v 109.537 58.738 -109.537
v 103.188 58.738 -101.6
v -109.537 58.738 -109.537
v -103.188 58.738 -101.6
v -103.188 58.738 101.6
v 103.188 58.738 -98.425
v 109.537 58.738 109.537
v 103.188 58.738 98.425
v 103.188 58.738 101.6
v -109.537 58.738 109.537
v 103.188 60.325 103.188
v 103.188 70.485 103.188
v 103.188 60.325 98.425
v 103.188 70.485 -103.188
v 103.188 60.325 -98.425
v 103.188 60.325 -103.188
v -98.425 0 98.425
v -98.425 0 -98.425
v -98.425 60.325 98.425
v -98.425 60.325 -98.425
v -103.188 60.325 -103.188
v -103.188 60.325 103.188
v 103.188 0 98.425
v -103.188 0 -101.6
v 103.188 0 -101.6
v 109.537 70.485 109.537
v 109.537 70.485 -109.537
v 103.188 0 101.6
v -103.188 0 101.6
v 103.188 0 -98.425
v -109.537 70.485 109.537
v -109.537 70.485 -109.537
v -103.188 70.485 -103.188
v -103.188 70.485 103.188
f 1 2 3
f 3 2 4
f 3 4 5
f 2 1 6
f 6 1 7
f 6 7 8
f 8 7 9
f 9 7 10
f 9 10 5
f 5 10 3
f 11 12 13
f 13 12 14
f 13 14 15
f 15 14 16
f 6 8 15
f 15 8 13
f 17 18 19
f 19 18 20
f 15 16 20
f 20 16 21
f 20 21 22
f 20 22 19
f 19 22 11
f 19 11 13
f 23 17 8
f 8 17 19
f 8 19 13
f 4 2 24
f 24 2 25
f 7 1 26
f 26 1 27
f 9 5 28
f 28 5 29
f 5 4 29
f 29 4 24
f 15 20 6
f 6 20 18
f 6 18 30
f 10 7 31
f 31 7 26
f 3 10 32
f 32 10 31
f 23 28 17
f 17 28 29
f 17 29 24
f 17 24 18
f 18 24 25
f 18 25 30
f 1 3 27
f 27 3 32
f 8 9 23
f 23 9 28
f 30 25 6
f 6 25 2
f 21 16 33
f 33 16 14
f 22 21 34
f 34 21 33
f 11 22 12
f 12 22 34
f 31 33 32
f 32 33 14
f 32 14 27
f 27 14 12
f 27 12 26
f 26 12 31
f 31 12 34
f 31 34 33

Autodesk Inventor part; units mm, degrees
ref_plane "YZ Plane" through (0, 0, 0) normal (1, 0, 0) x (0, 1, 0)
ref_plane "XZ Plane" through (0, 0, 0) normal (0, 1, 0) x (-1, 0, 0)
sketch "Sketch1" plane through (0, 0, 0) normal (0, 1, 0) x (-1, 0, 0)
  line L0 (-103.1875, 101.6) -> (103.1875, 101.6)
  line L1 (103.1875, 101.6) -> (103.1875, -101.6)
  line L2 (103.1875, -101.6) -> (-103.1875, -101.6)
  line L3 (-103.1875, -101.6) -> (-103.1875, 101.6)
  line L4 (-103.1875, 101.6) -> (103.1875, -101.6) construction
  line L5 (103.1875, 101.6) -> (-103.1875, -101.6) construction
  line L6 (-98.425, 98.425) -> (98.425, 98.425)
  line L7 (98.425, 98.425) -> (98.425, -98.425)
  line L8 (98.425, -98.425) -> (-98.425, -98.425)
  line L9 (-98.425, -98.425) -> (-98.425, 98.425)
  line L10 (-98.425, 98.425) -> (98.425, -98.425) construction
  line L11 (98.425, 98.425) -> (-98.425, -98.425) construction
  point P0 (0, 0)
  dimension "d0" = 203.2
  dimension "d1" = 206.375
  dimension "d2" = 196.85
extrude "Extrusion1" add sketch "Sketch1" along normal blind 60.325
ref_plane "Work Plane1" through (0, 58.7375, 0) normal (0, 1, 0) x (1, 0, 0)
sketch "Sketch2" plane through (0, 58.7375, 0) normal (0, 1, 0) x (1, 0, 0)
  line L0 (109.5375, -109.5375) -> (-109.5375, -109.5375)
  line L1 (-109.5375, -109.5375) -> (-109.5375, 109.5375)
  line L2 (-109.5375, 109.5375) -> (109.5375, 109.5375)
  line L3 (109.5375, 109.5375) -> (109.5375, -109.5375)
  line L4 (109.5375, -109.5375) -> (-109.5375, 109.5375) construction
  line L5 (-109.5375, -109.5375) -> (109.5375, 109.5375) construction
  line L6 (103.1875, 101.6) -> (-103.1875, 101.6) projected
  line L7 (-103.1875, 101.6) -> (-103.1875, -101.6) projected
  line L8 (-103.1875, -101.6) -> (103.1875, -101.6) projected
  line L9 (103.1875, -101.6) -> (103.1875, 101.6) projected
  line L10 (98.425, -98.425) -> (-98.425, -98.425) projected
  line L11 (-98.425, -98.425) -> (-98.425, 98.425) projected
  line L12 (-98.425, 98.425) -> (98.425, 98.425) projected
  line L13 (98.425, 98.425) -> (98.425, -98.425) projected
  point P0 (0, 0)
  dimension "d7" = 219.075
extrude "Extrusion2" add sketch "Sketch2" along normal up to surface (1.5875 mm away) contours L0 L1 L2 L3
sketch "Sketch3" plane through (0, 60.325, 0) normal (0, 1, 0) x (1, 0, 0)
  line L0 (109.5375, 109.5375) -> (109.5375, -109.5375) projected
  line L1 (-109.5375, 109.5375) -> (109.5375, 109.5375) projected
  line L2 (-109.5375, -109.5375) -> (-109.5375, 109.5375) projected
  line L3 (109.5375, -109.5375) -> (-109.5375, -109.5375) projected
  line L4 (98.425, -98.425) -> (-98.425, -98.425) projected
  line L5 (-98.425, -98.425) -> (-98.425, 98.425) projected
  line L6 (-98.425, 98.425) -> (98.425, 98.425) projected
  line L7 (98.425, 98.425) -> (98.425, -98.425) projected
  line L8 (103.1875, -103.1875) -> (-103.1875, -103.1875)
  line L9 (-103.1875, -103.1875) -> (-103.1875, 103.1875)
  line L10 (-103.1875, 103.1875) -> (103.1875, 103.1875)
  line L11 (103.1875, 103.1875) -> (103.1875, -103.1875)
  line L12 (103.1875, -103.1875) -> (-103.1875, 103.1875) construction
  line L13 (-103.1875, -103.1875) -> (103.1875, 103.1875) construction
  point P0 (0, 0)
  dimension "d10" = 206.375
extrude "Extrusion3" add sketch "Sketch3" along normal blind 10.16 contours L0 L3 L2 L1
sketch "Sketch4" plane through (103.1875, 0, 101.6) normal (1, 0, 0) x (0, 0, -1)
  line L0 (200.025, 0) -> (3.175, 0) projected
  line L1 (3.175, 0) -> (3.175, 60.325) projected
  line L2 (200.025, 60.325) -> (3.175, 60.325) projected
  line L3 (200.025, 0) -> (200.025, 60.325) projected
  point P0 (101.6, 0)
extrude "Extrusion4" cut sketch "Sketch4" against normal blind 10.16
properties part number "wall support"
